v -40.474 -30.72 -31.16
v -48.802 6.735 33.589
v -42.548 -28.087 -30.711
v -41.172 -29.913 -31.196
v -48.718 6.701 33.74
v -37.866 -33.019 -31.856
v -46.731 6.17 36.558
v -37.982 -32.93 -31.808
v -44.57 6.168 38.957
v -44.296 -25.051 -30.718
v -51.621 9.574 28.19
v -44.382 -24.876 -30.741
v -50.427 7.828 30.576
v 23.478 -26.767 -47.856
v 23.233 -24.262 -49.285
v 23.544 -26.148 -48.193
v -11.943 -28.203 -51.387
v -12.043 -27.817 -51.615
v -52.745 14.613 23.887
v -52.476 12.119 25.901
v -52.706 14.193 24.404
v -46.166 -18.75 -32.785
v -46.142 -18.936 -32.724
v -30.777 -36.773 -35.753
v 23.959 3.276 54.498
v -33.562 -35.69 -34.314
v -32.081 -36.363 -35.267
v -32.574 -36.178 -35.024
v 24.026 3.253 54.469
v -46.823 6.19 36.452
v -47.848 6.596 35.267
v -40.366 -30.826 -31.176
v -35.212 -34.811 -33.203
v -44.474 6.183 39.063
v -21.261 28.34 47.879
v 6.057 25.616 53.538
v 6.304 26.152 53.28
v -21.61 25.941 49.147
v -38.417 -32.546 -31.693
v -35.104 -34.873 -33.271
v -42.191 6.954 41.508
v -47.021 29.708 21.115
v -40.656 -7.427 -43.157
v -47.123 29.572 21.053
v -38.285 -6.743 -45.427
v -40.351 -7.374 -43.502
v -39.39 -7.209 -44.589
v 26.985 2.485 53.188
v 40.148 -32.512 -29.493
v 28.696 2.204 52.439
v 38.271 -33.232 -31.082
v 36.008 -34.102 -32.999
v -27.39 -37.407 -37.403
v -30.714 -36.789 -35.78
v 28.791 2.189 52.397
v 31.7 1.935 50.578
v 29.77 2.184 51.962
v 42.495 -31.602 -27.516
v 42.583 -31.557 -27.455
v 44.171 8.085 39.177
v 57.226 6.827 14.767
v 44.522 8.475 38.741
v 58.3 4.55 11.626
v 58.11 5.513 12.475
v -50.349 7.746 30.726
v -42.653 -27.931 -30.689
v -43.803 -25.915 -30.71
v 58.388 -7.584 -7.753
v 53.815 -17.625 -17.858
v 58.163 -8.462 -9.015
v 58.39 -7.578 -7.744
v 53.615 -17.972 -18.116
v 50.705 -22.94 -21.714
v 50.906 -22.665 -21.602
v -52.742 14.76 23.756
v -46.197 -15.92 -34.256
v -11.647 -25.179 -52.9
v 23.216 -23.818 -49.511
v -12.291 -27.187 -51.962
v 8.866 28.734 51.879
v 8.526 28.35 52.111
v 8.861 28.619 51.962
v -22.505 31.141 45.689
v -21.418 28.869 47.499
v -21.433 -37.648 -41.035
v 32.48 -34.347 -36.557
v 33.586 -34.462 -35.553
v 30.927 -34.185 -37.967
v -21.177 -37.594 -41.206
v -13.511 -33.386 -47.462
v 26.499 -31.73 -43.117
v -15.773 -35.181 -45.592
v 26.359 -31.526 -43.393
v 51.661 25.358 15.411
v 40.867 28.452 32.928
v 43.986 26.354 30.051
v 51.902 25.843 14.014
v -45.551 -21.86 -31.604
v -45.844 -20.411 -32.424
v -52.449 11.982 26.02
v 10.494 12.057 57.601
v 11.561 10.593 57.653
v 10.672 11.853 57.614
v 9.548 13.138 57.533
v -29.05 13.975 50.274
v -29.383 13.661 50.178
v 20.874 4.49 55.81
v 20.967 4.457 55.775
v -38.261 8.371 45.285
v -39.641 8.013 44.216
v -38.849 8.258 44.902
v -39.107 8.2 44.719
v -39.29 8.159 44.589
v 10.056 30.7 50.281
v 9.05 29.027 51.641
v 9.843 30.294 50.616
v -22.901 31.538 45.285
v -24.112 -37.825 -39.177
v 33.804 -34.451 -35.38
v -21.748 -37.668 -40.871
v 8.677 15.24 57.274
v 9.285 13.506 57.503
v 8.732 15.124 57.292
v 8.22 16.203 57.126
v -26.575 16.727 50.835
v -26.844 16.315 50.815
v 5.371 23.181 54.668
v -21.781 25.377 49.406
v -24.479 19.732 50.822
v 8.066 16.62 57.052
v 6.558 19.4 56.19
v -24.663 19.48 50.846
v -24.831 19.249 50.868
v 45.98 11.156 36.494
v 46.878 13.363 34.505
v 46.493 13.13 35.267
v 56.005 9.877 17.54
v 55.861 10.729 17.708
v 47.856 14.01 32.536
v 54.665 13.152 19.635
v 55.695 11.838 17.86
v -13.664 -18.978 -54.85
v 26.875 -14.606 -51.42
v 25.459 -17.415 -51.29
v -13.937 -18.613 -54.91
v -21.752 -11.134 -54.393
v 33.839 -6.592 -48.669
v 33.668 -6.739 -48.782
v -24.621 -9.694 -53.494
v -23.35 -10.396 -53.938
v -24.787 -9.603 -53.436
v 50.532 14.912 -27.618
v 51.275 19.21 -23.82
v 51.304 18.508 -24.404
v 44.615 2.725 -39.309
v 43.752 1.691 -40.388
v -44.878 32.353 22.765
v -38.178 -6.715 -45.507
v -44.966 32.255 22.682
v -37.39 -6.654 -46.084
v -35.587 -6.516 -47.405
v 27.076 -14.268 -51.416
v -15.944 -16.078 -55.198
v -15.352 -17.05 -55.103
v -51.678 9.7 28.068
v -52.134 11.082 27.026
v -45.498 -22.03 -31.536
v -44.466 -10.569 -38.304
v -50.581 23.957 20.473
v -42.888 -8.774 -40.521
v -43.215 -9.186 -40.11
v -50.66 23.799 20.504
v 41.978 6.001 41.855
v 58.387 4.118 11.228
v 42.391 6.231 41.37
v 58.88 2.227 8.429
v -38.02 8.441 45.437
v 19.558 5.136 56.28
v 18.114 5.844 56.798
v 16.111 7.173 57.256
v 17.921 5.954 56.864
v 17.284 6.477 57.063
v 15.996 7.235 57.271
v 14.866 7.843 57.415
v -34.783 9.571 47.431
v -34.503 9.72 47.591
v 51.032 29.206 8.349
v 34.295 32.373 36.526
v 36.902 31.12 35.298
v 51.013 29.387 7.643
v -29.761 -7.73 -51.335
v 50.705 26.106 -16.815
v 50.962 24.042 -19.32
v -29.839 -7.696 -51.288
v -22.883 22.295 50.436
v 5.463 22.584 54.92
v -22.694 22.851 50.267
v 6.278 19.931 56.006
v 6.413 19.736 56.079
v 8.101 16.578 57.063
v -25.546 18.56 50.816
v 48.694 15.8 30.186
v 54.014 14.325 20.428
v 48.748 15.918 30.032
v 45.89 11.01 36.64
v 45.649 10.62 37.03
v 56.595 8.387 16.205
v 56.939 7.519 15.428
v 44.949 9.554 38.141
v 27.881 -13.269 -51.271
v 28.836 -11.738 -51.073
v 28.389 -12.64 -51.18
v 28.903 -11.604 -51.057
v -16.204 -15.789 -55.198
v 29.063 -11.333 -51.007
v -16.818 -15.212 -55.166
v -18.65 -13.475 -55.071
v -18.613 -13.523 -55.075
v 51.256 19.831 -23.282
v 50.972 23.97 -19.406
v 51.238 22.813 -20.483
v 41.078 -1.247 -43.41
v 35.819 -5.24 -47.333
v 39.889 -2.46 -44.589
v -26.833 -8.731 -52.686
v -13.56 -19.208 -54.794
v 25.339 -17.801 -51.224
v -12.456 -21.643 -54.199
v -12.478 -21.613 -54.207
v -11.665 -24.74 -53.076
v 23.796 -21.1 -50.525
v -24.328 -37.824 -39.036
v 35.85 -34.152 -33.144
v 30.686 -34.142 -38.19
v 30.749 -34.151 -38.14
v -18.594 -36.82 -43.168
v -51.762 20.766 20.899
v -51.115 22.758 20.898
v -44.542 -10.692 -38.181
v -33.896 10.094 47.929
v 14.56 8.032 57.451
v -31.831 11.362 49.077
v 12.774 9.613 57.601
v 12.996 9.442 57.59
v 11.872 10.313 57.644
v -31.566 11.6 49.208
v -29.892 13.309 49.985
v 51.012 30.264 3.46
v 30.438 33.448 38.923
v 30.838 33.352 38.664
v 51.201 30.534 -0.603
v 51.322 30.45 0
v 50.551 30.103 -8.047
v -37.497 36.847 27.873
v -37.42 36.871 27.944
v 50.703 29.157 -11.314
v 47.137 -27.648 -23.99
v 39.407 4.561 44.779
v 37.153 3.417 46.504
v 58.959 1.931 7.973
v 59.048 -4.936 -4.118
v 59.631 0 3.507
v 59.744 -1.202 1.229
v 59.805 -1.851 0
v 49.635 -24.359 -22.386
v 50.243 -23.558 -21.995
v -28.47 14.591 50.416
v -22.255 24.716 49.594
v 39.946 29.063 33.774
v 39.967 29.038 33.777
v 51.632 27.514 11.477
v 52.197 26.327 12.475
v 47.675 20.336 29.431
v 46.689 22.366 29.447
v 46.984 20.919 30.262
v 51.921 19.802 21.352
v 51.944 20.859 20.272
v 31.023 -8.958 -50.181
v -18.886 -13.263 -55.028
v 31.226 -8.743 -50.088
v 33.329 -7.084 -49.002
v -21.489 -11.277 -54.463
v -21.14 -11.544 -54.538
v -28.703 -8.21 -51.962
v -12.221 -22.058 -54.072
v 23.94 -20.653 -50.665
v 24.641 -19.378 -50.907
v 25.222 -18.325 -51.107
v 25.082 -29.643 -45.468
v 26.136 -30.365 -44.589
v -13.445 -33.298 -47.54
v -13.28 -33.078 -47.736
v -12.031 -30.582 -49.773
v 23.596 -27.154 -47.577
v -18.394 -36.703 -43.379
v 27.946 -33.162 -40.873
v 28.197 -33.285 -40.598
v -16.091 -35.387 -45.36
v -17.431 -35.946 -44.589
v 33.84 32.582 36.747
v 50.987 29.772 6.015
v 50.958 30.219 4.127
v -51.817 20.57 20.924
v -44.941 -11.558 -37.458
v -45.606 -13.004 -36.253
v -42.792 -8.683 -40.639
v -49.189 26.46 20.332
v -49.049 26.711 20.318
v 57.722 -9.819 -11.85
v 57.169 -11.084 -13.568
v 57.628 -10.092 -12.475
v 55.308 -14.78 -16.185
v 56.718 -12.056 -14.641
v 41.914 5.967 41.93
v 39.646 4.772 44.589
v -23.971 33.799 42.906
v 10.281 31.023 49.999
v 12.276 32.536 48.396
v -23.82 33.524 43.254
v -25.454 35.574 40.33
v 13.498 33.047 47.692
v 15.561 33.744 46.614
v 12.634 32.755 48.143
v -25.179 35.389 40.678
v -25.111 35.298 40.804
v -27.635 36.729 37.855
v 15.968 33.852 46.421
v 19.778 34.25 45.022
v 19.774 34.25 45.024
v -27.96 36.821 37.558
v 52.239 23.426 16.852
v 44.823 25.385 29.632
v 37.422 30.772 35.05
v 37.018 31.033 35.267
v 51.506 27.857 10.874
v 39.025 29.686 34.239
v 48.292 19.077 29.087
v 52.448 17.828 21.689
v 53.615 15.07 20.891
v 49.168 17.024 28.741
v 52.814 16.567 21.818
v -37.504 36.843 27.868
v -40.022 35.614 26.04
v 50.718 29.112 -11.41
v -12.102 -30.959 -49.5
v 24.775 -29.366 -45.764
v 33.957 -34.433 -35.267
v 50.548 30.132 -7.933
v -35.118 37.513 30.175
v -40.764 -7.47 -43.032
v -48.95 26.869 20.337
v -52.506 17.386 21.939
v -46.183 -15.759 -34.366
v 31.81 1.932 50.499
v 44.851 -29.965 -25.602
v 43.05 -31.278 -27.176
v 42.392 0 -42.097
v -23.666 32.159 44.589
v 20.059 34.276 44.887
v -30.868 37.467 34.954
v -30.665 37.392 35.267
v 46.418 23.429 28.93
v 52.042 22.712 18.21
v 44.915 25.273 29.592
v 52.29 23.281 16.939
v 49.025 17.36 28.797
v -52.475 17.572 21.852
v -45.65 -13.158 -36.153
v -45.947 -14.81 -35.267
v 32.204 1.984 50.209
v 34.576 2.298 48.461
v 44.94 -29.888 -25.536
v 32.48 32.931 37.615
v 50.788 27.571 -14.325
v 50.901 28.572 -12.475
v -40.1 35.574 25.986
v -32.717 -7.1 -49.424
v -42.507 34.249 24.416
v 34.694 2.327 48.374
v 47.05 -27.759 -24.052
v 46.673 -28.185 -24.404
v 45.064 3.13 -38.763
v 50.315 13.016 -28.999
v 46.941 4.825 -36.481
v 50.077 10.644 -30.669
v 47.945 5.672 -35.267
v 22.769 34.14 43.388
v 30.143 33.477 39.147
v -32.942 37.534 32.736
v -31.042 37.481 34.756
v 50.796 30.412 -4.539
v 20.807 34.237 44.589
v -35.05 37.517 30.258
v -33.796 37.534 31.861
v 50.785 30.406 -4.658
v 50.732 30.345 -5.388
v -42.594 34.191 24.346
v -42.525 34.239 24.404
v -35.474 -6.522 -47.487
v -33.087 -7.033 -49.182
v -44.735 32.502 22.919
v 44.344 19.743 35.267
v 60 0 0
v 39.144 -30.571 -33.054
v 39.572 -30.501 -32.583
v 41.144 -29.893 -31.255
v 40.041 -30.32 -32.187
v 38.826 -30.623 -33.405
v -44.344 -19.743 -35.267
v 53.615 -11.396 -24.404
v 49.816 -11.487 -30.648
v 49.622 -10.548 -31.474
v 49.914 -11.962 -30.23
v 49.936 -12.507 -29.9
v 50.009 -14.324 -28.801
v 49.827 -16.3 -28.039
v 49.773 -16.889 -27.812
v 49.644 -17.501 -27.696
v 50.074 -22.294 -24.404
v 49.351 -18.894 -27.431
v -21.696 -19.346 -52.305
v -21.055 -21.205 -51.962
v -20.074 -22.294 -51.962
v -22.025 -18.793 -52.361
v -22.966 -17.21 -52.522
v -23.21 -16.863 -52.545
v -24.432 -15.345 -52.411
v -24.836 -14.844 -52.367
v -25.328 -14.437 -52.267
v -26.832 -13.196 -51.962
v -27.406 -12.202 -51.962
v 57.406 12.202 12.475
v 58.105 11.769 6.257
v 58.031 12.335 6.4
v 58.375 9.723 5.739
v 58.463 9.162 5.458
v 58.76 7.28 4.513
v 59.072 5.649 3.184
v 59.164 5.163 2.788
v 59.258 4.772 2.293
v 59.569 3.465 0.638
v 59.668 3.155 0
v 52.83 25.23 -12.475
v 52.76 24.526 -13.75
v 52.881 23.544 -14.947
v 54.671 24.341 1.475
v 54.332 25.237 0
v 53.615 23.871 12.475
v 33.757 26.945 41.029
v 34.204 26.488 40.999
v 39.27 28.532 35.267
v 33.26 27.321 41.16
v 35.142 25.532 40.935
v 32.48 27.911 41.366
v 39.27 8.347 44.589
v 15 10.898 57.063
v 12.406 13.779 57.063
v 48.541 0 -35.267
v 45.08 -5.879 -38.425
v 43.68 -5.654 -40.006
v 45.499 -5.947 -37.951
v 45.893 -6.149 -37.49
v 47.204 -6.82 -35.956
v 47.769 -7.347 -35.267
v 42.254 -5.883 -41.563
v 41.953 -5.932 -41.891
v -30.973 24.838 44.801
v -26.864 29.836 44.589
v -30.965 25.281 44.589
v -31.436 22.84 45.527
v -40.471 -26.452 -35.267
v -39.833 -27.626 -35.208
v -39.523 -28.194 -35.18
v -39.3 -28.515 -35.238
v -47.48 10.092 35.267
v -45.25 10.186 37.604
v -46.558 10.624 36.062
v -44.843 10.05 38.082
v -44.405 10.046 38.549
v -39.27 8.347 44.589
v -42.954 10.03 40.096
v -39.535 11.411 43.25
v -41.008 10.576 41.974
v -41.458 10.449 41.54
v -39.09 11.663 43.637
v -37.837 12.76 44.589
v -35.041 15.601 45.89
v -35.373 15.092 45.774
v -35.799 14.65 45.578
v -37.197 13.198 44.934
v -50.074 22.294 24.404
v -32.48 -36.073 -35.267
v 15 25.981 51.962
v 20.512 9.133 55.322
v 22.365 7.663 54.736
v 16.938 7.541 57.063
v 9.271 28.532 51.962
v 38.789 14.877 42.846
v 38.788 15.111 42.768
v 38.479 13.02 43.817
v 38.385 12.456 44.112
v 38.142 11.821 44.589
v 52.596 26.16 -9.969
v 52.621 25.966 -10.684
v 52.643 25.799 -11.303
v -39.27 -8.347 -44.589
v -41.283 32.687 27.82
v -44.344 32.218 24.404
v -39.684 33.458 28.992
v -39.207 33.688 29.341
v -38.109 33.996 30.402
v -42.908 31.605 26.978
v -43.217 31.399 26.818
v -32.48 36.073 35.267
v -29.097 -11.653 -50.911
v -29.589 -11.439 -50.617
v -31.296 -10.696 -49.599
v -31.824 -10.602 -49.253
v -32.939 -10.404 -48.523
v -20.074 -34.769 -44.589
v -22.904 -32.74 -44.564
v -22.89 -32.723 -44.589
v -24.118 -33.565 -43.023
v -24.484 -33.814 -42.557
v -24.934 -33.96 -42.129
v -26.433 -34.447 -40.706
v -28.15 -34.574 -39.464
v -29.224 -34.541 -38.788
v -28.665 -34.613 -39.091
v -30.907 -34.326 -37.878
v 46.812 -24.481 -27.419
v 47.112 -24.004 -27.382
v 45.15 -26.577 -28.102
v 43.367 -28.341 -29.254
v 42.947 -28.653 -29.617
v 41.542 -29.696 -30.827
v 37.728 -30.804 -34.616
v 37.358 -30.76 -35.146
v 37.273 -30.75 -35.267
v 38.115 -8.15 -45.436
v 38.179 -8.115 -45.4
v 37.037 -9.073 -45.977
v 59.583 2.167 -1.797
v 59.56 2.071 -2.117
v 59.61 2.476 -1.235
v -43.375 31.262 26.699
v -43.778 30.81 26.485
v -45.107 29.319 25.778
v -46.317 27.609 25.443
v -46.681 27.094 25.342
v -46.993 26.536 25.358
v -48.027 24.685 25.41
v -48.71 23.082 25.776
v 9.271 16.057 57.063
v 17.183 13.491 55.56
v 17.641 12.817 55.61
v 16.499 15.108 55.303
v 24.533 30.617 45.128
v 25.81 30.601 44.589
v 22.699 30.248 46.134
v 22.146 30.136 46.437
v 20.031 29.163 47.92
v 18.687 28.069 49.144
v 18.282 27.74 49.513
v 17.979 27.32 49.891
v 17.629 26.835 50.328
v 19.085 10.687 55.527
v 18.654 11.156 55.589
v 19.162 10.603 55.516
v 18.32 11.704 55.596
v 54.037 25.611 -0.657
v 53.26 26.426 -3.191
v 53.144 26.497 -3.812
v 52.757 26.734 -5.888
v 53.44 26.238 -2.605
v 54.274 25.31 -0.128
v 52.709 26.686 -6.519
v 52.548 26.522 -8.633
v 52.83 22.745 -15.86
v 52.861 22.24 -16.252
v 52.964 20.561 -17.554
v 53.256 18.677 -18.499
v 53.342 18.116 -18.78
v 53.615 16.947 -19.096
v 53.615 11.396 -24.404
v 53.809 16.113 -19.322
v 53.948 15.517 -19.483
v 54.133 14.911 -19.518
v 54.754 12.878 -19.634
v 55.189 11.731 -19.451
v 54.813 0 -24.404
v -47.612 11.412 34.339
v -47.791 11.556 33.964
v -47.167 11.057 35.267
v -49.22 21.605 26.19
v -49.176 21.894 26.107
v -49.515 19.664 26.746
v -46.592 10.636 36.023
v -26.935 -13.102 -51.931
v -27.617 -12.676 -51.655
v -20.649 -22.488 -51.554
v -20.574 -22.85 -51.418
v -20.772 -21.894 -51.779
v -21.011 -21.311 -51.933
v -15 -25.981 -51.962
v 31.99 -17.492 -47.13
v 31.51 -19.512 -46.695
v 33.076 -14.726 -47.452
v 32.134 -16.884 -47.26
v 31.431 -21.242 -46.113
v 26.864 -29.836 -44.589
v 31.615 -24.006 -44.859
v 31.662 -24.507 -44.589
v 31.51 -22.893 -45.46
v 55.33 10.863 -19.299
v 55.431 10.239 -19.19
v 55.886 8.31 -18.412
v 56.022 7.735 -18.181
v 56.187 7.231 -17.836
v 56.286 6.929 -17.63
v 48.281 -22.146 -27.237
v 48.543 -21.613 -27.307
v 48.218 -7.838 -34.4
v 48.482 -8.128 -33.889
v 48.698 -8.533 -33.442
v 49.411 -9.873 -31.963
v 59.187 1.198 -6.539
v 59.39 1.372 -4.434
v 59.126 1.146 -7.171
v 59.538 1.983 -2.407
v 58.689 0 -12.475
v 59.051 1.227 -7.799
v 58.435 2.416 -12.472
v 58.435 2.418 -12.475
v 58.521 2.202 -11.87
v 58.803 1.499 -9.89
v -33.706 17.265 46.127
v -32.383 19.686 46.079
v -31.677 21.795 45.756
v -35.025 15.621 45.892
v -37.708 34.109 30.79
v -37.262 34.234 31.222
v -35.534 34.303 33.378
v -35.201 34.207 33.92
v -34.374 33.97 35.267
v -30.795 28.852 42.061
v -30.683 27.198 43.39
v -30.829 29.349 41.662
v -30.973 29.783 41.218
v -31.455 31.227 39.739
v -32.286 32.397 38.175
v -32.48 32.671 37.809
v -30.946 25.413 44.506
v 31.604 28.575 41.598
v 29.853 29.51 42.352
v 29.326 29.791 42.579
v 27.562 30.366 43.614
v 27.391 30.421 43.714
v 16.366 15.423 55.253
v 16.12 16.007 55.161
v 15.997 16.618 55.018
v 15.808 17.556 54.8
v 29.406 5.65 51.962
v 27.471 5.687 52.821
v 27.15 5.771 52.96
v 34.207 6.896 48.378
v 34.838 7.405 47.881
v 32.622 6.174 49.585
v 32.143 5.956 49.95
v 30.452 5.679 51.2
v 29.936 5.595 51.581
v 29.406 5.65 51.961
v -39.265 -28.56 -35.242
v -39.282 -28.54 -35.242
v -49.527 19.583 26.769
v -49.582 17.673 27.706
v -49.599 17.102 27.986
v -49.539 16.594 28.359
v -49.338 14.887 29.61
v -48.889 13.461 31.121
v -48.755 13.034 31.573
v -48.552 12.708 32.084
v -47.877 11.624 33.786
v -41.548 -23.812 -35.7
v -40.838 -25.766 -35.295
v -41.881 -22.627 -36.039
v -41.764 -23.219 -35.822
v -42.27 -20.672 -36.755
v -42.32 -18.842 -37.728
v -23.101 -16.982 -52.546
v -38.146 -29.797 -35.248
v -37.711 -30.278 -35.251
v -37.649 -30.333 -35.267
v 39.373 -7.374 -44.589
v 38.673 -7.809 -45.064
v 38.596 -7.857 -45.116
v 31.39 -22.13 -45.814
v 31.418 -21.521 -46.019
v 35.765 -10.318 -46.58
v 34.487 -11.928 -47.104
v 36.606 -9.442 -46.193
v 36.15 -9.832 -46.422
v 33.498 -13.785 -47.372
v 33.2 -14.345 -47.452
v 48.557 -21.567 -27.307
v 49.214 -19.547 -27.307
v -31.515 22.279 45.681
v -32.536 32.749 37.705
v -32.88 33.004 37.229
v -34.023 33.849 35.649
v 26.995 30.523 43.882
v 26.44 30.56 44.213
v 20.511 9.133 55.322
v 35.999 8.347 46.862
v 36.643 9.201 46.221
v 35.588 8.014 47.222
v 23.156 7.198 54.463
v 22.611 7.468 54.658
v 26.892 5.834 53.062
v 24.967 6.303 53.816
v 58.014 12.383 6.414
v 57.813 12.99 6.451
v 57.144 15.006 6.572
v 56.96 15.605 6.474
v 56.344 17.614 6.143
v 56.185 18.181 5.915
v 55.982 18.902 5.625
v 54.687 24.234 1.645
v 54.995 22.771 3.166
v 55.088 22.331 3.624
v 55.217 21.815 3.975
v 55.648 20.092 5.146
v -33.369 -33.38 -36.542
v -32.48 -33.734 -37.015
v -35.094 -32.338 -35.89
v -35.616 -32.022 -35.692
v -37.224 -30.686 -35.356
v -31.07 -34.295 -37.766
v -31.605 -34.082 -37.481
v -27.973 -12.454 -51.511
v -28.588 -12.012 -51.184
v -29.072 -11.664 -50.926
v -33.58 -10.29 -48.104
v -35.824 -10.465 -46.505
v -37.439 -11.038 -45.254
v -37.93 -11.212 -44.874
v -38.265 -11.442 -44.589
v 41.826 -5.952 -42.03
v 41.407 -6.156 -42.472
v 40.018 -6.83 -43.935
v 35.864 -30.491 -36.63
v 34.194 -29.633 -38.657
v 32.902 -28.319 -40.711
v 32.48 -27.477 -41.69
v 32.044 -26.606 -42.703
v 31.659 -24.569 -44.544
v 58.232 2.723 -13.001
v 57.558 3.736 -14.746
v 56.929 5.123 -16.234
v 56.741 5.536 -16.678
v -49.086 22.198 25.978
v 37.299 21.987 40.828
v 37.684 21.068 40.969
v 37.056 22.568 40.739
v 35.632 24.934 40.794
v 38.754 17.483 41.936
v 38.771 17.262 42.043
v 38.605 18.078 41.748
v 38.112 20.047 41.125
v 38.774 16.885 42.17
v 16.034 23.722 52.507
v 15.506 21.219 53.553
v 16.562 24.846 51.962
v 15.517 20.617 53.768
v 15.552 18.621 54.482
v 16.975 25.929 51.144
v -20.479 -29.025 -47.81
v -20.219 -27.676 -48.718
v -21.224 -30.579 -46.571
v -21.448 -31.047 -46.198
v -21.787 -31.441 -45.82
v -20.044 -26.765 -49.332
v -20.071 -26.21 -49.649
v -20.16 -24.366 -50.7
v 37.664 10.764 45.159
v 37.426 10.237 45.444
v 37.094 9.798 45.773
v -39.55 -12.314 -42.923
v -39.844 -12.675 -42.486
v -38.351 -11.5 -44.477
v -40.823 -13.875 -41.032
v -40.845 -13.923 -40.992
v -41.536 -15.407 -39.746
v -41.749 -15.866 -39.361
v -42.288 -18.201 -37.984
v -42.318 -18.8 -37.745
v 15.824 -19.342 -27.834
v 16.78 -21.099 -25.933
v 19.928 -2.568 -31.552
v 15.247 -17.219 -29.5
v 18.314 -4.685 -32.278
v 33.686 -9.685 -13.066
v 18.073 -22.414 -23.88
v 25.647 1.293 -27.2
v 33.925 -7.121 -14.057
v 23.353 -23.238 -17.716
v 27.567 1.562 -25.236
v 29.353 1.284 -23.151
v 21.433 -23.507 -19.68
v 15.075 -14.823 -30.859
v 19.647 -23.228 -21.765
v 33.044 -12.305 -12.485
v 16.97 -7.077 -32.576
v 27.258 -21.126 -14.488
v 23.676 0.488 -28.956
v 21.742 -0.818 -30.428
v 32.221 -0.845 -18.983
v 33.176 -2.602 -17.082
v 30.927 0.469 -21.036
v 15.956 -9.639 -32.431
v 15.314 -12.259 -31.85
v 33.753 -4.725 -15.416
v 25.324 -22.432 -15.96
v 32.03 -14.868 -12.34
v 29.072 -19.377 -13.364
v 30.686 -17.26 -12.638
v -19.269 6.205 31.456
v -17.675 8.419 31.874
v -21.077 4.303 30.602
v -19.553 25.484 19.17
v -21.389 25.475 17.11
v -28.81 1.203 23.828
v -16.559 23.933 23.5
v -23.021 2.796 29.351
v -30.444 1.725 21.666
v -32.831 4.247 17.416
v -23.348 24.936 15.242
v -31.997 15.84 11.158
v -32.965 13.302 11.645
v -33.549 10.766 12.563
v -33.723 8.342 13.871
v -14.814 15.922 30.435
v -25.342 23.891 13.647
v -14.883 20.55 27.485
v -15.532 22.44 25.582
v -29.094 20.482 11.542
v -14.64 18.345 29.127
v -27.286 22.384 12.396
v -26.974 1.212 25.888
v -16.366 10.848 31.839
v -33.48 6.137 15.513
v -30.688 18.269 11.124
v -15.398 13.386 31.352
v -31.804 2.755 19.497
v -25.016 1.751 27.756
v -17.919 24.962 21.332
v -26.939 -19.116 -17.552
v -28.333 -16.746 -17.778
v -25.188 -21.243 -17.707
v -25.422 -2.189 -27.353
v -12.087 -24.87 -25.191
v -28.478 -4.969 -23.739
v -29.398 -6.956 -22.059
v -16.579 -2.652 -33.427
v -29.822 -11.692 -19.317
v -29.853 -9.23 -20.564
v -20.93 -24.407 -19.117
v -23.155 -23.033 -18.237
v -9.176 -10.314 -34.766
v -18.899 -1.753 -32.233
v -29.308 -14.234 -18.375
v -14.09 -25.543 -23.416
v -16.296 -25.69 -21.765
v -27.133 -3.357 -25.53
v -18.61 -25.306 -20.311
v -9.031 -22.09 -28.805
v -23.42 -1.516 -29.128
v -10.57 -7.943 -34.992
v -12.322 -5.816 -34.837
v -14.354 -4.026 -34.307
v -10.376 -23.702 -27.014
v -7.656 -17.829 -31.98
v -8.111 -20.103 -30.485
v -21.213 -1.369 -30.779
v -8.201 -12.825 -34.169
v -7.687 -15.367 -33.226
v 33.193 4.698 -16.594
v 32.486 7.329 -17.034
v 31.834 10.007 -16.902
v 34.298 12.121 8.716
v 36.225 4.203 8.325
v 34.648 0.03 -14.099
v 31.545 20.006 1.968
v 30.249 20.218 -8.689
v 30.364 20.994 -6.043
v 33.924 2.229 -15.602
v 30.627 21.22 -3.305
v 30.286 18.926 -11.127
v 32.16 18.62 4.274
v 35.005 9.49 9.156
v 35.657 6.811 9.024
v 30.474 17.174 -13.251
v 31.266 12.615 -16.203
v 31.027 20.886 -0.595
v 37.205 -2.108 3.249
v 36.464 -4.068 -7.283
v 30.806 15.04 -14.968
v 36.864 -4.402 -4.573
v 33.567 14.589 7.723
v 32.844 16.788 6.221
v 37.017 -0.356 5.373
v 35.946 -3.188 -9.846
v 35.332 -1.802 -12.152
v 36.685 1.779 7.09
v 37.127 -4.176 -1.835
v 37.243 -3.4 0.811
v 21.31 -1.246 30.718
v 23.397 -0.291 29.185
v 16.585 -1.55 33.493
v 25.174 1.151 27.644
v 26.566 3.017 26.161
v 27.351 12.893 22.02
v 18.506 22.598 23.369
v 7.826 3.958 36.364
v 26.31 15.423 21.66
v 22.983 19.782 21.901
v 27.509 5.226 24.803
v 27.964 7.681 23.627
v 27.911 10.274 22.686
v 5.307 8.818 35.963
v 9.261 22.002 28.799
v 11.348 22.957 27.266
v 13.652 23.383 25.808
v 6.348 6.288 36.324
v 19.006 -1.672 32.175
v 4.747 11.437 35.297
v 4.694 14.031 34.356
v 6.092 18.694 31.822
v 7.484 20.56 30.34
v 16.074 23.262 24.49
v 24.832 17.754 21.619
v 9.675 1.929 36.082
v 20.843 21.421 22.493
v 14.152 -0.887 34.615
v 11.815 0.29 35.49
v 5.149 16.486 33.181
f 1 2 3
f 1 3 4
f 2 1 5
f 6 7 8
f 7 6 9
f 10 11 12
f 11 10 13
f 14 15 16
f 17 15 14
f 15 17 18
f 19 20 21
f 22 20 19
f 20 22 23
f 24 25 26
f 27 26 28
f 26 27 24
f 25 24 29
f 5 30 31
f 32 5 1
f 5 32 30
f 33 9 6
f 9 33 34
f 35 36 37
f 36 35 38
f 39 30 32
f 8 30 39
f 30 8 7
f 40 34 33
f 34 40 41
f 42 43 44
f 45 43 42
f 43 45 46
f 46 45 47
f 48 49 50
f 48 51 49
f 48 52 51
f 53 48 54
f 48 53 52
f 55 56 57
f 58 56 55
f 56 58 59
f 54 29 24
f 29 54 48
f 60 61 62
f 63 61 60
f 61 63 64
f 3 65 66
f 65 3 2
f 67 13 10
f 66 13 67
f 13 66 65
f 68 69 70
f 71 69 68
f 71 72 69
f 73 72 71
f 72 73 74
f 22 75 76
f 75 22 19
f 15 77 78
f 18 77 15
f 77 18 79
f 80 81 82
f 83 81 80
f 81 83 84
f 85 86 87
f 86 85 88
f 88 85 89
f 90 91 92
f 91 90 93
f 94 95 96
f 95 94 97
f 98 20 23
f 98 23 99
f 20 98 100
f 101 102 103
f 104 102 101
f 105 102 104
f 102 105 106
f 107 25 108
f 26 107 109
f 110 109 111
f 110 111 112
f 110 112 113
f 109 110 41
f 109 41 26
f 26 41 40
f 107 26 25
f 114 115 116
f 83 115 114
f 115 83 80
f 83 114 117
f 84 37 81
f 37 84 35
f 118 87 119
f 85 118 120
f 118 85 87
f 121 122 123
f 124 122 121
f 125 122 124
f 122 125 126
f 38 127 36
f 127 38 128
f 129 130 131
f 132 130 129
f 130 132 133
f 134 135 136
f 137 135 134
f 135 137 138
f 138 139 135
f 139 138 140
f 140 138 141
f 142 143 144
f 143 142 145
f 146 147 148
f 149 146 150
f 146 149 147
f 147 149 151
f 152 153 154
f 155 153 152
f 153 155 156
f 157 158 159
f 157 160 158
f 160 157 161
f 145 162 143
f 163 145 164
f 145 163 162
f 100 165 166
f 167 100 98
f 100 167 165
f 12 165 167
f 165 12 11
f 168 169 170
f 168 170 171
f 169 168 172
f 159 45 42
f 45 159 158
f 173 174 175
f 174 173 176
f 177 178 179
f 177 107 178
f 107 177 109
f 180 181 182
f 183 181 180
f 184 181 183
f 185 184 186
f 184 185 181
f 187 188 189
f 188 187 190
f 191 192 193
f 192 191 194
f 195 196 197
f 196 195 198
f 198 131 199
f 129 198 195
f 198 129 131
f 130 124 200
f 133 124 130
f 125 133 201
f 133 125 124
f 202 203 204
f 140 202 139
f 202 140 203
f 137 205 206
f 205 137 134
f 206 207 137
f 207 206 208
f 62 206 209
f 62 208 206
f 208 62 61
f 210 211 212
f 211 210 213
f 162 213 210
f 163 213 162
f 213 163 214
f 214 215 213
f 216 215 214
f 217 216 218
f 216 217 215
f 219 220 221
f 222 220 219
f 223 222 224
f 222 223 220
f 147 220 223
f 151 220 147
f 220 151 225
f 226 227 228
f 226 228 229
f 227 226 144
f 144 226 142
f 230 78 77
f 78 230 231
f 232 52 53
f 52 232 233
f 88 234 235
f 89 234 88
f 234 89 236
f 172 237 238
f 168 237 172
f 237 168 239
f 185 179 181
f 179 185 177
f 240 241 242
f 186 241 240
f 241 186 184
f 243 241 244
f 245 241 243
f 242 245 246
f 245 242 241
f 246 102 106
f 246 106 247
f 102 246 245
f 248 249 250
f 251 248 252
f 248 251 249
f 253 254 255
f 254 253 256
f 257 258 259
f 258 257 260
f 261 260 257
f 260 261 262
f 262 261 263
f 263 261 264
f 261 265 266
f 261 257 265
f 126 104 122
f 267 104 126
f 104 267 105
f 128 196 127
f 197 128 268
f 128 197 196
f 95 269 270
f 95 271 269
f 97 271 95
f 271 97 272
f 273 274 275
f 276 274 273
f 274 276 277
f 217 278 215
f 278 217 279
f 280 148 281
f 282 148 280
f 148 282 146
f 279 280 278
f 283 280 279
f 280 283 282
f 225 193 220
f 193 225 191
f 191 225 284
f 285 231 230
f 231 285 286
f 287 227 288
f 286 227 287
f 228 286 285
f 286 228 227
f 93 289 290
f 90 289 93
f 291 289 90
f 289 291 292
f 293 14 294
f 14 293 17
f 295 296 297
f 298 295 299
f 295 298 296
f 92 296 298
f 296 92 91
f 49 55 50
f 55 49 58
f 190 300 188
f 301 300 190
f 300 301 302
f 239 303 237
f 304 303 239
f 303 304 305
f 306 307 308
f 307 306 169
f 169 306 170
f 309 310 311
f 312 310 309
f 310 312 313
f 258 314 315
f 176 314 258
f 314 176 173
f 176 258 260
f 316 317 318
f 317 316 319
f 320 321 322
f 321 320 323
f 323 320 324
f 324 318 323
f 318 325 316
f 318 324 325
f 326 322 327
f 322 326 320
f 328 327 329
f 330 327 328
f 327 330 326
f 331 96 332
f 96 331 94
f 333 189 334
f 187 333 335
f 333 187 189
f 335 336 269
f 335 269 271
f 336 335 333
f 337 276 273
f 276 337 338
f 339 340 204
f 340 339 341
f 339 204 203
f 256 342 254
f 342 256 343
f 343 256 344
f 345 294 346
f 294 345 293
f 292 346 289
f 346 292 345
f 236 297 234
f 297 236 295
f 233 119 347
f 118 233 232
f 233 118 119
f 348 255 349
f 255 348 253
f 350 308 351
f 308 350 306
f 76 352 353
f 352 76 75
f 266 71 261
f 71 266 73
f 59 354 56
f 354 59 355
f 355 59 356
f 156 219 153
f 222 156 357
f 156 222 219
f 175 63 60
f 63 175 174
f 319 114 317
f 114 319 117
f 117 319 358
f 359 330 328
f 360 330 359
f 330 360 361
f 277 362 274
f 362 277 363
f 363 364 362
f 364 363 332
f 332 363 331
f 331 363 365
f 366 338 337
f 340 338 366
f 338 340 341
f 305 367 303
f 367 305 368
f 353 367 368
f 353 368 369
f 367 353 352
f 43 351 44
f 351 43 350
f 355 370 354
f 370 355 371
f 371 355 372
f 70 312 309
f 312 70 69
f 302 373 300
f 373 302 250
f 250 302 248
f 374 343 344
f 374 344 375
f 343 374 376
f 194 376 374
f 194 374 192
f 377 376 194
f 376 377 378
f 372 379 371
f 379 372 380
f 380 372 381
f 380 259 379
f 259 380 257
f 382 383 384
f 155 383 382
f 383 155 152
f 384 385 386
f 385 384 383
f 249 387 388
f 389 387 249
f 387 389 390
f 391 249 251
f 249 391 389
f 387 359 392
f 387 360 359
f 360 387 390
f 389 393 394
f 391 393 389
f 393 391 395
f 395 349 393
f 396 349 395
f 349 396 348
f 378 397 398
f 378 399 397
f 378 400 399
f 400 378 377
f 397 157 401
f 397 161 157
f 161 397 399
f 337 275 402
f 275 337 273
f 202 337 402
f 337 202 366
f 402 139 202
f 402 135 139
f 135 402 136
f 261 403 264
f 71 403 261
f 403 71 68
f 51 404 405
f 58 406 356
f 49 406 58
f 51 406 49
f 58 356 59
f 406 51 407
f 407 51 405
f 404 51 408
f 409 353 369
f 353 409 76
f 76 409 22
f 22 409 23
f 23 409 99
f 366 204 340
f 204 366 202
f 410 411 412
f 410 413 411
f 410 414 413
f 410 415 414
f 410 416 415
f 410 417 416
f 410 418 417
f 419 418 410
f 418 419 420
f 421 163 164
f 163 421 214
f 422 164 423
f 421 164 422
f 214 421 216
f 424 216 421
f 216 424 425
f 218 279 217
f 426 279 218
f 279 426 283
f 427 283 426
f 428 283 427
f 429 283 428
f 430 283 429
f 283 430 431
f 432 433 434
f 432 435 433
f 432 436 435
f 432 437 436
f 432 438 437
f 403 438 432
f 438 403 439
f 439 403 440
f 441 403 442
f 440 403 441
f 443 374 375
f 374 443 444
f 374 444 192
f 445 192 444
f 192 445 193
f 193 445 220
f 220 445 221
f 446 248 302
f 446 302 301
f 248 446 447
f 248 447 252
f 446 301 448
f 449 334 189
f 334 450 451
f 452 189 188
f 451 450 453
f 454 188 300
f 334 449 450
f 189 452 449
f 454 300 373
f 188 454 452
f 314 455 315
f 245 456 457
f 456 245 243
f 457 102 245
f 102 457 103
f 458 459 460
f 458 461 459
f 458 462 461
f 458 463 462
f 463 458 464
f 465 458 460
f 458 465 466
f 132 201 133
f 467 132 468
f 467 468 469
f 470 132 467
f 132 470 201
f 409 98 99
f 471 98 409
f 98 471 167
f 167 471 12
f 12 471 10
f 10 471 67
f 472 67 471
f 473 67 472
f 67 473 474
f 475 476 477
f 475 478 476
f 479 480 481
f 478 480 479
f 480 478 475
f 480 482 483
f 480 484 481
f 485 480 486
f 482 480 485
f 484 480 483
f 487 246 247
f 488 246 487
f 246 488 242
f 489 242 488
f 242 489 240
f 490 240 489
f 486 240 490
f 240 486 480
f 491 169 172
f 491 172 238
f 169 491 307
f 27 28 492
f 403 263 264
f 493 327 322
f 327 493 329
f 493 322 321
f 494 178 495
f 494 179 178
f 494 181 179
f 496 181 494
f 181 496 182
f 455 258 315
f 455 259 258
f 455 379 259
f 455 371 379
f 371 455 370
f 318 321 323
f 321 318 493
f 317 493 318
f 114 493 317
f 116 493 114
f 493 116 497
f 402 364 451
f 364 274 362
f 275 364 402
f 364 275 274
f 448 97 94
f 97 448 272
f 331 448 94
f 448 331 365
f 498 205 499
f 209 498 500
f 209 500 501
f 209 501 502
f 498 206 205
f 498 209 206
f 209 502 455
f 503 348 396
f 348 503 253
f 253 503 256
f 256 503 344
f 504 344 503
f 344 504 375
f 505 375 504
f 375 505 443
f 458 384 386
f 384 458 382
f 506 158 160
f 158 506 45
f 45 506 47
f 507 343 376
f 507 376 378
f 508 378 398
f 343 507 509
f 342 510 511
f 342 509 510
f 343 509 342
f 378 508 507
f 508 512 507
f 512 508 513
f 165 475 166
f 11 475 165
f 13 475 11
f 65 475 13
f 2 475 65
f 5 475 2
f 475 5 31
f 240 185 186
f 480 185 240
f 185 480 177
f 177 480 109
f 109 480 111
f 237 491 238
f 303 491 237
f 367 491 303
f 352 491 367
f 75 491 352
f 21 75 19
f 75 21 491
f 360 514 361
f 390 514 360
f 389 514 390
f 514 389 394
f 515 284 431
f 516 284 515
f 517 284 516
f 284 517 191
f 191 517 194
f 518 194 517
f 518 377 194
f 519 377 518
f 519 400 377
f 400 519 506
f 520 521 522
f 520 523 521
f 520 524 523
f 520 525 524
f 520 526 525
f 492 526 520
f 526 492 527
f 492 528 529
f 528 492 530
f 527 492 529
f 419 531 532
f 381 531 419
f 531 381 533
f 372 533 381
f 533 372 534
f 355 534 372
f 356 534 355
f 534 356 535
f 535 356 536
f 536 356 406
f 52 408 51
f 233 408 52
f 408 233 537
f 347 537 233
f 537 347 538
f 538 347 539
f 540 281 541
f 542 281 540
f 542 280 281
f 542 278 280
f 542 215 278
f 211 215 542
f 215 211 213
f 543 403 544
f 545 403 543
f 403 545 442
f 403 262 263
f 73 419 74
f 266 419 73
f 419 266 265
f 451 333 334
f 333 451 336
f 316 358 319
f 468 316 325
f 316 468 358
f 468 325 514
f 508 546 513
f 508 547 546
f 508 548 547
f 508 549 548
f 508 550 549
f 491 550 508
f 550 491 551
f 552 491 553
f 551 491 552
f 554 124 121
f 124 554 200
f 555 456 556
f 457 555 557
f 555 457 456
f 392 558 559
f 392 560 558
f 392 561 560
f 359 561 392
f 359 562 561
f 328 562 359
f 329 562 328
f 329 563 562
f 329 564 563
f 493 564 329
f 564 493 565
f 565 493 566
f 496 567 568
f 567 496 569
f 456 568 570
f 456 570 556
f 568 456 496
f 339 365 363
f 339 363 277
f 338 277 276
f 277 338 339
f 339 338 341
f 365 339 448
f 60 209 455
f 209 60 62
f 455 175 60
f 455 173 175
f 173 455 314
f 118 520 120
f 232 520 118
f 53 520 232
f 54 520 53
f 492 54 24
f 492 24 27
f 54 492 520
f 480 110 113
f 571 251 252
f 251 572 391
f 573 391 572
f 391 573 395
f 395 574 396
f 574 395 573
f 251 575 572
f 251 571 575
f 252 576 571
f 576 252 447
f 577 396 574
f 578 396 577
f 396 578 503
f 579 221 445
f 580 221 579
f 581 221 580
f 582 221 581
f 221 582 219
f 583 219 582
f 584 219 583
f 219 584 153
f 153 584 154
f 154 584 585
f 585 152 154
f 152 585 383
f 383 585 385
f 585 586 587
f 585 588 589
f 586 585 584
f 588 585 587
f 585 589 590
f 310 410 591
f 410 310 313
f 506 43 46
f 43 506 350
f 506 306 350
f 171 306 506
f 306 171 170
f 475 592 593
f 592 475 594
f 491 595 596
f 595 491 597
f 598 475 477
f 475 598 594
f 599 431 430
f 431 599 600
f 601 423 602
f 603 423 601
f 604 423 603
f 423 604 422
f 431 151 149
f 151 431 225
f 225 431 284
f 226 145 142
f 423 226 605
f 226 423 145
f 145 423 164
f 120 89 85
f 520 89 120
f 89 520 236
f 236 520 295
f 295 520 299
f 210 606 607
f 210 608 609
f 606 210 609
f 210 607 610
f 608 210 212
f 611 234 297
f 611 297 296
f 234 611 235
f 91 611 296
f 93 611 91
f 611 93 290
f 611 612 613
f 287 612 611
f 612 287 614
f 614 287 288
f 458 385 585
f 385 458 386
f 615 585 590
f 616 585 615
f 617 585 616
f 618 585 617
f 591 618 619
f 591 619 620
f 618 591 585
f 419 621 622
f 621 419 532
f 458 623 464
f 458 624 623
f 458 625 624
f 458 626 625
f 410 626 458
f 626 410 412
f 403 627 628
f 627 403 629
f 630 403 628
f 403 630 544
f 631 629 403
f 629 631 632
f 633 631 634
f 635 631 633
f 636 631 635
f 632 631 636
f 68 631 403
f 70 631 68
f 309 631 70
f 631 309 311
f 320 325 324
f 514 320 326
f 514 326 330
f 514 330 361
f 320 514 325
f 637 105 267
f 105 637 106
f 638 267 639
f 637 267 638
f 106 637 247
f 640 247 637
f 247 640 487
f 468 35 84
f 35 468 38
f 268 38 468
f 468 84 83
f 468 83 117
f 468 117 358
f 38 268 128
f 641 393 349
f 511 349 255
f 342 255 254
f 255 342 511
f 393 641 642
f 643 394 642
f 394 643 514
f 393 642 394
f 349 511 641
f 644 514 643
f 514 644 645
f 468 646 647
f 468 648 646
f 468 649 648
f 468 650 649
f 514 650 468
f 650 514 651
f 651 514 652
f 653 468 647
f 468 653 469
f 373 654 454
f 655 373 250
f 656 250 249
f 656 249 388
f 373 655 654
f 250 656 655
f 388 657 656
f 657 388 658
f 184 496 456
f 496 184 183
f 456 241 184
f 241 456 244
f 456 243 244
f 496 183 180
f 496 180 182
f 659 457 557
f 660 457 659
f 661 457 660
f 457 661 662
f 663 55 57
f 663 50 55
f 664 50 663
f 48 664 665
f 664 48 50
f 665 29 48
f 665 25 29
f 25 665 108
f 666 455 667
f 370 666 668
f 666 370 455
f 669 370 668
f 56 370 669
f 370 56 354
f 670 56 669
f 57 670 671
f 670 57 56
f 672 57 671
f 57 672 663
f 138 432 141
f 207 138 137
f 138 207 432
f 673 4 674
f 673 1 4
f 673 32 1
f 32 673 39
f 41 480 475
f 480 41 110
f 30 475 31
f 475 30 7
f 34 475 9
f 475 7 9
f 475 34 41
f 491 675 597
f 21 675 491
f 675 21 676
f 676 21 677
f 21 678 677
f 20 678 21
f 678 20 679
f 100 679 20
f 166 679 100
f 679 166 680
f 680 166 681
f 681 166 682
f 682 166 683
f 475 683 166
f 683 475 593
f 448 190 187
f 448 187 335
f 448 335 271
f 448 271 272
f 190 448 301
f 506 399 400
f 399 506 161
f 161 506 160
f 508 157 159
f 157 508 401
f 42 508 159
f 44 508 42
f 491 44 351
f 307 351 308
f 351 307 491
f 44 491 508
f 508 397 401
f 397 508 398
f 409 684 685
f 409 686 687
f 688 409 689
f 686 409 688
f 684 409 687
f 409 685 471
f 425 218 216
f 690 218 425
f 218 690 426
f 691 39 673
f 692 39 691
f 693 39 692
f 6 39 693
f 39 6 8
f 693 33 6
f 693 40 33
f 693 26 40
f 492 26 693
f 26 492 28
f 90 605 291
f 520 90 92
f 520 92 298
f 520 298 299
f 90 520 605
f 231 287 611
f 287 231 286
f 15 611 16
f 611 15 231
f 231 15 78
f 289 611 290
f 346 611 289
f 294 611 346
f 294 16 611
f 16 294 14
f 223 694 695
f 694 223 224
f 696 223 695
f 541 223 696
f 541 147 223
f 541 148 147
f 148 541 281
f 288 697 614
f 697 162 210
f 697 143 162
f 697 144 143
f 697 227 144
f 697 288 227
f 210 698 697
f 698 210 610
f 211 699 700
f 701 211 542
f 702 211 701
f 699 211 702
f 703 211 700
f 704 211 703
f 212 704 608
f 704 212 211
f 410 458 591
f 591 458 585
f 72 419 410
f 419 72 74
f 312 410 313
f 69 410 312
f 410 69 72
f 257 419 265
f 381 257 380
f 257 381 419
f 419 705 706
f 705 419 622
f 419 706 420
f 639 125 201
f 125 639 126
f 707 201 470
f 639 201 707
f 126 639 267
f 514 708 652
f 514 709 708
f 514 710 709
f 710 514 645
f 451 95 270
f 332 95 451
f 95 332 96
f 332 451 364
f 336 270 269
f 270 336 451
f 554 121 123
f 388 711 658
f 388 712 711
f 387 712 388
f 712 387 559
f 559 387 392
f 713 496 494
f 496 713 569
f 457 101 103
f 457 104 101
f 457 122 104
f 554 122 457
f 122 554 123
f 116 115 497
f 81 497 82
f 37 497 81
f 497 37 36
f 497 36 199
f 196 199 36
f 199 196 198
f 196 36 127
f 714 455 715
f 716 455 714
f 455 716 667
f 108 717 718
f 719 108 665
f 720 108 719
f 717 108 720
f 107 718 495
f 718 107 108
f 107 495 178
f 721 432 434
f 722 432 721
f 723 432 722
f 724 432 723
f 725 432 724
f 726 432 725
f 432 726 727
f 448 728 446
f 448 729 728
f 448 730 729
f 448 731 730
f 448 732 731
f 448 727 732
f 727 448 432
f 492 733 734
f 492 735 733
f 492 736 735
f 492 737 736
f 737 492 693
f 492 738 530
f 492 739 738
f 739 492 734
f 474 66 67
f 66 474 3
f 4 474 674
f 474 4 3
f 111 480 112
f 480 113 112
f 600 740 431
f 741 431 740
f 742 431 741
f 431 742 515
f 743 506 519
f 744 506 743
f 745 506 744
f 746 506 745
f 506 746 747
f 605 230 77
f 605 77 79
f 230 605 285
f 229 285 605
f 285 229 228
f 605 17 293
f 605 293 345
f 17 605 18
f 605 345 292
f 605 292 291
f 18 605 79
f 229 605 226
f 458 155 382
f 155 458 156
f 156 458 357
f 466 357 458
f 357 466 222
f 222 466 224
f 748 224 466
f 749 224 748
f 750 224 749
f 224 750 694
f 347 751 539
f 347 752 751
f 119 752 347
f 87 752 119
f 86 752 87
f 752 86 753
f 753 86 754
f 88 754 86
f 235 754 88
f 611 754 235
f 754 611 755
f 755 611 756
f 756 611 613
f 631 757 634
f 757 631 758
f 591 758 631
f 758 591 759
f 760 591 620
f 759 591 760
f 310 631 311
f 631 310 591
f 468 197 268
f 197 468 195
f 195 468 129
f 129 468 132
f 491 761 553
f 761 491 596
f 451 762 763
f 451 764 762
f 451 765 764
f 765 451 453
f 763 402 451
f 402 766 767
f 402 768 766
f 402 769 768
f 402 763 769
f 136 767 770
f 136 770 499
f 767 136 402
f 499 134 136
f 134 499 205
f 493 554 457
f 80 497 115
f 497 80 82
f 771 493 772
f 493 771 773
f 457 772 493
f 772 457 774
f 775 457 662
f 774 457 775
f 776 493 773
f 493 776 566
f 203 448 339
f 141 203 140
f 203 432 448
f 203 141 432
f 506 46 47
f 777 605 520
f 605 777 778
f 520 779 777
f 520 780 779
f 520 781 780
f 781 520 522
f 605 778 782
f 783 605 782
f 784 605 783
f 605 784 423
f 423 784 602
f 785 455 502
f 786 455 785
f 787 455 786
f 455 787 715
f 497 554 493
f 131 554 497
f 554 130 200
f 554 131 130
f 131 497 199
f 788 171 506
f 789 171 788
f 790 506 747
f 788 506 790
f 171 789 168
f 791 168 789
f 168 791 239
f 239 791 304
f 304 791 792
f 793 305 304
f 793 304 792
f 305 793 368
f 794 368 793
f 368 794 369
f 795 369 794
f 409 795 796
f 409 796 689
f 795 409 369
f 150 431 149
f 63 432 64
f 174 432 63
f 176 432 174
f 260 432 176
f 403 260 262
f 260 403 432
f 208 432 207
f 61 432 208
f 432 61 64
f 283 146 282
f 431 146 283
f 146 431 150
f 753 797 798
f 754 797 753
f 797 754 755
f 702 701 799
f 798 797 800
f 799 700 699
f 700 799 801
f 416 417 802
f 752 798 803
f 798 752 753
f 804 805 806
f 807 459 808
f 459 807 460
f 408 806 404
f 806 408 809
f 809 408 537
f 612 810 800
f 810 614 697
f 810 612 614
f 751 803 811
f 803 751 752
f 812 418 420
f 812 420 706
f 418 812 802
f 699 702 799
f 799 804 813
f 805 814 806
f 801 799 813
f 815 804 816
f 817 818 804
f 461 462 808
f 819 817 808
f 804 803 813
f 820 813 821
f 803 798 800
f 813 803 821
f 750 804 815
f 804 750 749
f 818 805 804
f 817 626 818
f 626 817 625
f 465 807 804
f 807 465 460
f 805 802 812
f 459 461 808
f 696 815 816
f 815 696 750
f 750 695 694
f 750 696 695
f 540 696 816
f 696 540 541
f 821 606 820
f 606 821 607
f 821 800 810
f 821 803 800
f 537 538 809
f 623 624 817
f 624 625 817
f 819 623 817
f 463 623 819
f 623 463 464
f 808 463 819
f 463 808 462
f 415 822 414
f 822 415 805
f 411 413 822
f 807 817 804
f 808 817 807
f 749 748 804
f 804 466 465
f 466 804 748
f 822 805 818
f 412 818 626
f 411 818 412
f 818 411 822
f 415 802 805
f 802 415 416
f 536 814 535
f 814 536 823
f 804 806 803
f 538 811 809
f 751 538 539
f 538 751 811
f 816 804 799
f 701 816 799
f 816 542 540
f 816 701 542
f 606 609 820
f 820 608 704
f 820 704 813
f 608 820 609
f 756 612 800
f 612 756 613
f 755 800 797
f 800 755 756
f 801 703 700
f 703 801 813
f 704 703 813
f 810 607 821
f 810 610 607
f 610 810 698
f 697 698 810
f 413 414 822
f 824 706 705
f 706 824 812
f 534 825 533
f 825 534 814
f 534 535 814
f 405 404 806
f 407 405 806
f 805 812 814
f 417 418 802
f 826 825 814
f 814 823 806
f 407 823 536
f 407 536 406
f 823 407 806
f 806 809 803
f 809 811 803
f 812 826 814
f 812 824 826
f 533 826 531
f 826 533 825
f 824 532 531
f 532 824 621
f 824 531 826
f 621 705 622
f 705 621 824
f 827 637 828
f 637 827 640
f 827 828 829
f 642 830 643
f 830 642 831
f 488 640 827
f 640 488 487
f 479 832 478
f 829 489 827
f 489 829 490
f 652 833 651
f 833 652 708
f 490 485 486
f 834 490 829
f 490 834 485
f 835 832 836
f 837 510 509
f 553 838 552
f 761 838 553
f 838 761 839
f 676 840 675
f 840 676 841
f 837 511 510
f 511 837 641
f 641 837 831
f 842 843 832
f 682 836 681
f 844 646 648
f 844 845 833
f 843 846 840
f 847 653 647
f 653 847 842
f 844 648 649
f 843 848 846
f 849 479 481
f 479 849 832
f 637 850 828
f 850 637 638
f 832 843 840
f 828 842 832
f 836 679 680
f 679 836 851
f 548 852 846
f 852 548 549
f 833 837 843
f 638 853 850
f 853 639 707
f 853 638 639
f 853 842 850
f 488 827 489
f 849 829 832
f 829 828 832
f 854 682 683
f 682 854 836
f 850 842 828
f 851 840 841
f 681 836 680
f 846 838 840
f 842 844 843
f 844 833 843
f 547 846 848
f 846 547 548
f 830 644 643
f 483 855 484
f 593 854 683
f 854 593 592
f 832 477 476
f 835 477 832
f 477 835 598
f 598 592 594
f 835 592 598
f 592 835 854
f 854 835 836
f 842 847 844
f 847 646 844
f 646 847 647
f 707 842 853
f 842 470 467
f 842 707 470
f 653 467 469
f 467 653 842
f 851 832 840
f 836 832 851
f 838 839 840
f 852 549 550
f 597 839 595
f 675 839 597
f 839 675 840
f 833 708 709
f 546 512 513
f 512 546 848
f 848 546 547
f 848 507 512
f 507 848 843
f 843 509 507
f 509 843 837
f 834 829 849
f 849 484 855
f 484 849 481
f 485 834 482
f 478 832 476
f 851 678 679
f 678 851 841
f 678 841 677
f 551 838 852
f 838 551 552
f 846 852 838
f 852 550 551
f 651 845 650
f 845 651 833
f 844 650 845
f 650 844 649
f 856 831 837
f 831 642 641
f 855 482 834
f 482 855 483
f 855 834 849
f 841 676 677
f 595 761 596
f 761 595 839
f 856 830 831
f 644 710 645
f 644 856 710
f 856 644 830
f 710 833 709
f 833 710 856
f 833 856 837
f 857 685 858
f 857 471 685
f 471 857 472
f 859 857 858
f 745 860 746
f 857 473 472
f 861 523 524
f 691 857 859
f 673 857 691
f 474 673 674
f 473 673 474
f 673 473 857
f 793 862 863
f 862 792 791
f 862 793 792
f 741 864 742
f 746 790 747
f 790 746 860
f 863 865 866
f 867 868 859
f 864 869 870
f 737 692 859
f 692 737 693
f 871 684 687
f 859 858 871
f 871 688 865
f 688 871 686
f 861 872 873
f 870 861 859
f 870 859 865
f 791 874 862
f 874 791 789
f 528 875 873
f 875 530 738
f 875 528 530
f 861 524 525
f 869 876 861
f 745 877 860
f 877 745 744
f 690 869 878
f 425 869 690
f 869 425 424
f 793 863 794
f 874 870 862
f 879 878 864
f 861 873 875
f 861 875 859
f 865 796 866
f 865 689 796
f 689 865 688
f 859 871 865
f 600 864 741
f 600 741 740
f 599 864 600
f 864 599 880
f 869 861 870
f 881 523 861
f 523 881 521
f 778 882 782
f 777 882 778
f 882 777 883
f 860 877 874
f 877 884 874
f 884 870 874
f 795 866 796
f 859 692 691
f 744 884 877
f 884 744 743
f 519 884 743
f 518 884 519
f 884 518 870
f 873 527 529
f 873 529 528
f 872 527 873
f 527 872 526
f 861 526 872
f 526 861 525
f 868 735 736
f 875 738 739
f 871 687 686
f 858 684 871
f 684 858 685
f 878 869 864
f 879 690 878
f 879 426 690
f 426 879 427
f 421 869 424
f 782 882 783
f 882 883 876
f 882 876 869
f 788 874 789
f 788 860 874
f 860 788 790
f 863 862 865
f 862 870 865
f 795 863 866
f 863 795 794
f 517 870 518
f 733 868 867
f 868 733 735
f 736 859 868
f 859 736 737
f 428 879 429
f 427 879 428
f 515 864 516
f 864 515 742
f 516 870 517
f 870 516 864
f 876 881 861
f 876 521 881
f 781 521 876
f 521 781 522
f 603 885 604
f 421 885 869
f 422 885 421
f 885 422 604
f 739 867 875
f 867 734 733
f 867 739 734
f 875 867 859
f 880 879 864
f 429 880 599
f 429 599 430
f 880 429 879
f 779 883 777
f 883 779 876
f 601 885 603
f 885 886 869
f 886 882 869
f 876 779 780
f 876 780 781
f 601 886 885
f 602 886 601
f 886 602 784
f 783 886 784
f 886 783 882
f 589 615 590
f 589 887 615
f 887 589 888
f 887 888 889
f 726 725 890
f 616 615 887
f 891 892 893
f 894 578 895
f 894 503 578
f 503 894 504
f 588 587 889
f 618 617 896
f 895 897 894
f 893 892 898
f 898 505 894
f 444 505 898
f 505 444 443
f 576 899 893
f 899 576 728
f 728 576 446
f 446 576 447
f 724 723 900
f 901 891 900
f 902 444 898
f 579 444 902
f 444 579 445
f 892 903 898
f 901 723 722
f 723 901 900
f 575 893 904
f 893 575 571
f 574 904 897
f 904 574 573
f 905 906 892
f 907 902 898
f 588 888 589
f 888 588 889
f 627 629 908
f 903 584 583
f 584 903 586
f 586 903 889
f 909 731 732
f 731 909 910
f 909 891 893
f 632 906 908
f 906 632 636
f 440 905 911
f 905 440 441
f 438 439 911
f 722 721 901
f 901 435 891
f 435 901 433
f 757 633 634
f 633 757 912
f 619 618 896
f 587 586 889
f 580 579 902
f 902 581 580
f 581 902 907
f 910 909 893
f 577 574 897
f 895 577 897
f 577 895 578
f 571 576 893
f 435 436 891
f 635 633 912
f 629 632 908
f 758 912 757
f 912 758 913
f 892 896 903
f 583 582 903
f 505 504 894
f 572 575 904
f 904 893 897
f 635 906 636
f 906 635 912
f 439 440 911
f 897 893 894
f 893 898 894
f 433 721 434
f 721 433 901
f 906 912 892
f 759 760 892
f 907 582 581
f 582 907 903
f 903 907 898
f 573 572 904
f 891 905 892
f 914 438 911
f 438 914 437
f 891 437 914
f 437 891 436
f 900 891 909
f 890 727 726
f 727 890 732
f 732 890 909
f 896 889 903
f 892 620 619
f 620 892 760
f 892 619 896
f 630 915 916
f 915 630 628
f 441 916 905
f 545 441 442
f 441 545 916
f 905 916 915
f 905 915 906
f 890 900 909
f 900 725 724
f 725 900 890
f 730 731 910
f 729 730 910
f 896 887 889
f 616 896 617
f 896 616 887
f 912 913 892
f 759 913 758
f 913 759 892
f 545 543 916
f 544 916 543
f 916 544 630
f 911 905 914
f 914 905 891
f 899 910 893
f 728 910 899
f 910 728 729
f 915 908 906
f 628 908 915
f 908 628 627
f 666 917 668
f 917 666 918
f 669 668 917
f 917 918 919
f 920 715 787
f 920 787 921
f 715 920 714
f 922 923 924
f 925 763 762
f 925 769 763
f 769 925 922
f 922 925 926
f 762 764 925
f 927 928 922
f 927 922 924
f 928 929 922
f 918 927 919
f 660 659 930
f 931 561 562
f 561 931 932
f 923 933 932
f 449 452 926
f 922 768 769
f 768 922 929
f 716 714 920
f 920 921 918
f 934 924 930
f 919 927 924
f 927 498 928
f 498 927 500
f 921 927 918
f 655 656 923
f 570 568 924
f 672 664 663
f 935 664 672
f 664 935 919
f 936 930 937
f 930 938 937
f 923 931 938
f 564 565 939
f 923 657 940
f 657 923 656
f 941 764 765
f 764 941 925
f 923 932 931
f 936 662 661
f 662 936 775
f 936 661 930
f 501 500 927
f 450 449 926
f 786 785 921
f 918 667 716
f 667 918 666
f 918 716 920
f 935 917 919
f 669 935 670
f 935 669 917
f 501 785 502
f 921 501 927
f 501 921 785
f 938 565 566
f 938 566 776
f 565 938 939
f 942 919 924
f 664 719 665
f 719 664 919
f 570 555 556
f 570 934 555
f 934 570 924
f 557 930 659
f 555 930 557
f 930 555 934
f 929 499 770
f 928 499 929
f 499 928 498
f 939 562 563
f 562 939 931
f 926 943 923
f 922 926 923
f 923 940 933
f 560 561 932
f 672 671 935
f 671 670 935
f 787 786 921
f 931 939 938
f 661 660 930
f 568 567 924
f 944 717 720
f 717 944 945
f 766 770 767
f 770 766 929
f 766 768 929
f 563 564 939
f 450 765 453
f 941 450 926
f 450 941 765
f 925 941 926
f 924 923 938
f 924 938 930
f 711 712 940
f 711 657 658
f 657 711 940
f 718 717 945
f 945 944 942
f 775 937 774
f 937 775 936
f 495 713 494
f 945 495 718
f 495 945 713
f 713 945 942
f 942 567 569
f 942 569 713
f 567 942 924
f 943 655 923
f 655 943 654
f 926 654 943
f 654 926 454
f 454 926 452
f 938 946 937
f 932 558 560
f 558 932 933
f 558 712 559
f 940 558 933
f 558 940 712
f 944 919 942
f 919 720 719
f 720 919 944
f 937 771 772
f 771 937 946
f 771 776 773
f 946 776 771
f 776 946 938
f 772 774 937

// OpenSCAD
difference() {
	intersection() {
		hull() {
			rotate(a = -133.0920607597, v = [-0.1812603911, 0.7074036194, 0.0000000000]) {
				rotate(a = -90.0000000000, v = [-0.6805863909, 0.7326678405, 0.0000000000]) {
					cylinder(h = 60, r = 16.2000000000);
				}
			}
			rotate(a = -133.0920607597, v = [-0.1812603911, 0.7074036194, 0.0000000000]) {
				rotate(a = -90.0000000000, v = [0.7326678405, -0.6805863909, 0.0000000000]) {
					cylinder(h = 60, r = 16.2000000000);
				}
			}
			rotate(a = -133.0920607597, v = [-0.1812603911, 0.7074036194, 0.0000000000]) {
				rotate(a = -15.8593487094, v = [-0.2656661749, 0.0640444410, 0.0000000000]) {
					cylinder(h = 60, r = 16.2000000000);
				}
			}
			rotate(a = -133.0920607597, v = [-0.1812603911, 0.7074036194, 0.0000000000]) {
				rotate(a = -130.4448145546, v = [-0.1952641757, 0.7355544154, 0.0000000000]) {
					cylinder(h = 60, r = 16.2000000000);
				}
			}
			rotate(a = -133.0920607597, v = [-0.1812603911, 0.7074036194, 0.0000000000]) {
				rotate(a = -162.2037640762, v = [0.2393271858, -0.1900891324, 0.0000000000]) {
					cylinder(h = 60, r = 16.2000000000);
				}
			}
		}
		sphere(r = 60);
	}
	union() {
		rotate(a = -133.0920607597, v = [-0.1812603911, 0.7074036194, 0.0000000000]) {
			rotate(a = -90.0000000000, v = [-0.6805863909, 0.7326678405, 0.0000000000]) {
				translate(v = [0, 0, 35]) {
					cylinder(h = 100, r = 13.2000000000);
				}
			}
		}
		rotate(a = -133.0920607597, v = [-0.1812603911, 0.7074036194, 0.0000000000]) {
			rotate(a = -90.0000000000, v = [0.7326678405, -0.6805863909, 0.0000000000]) {
				translate(v = [0, 0, 35]) {
					cylinder(h = 100, r = 13.2000000000);
				}
			}
		}
		rotate(a = -133.0920607597, v = [-0.1812603911, 0.7074036194, 0.0000000000]) {
			rotate(a = -15.8593487094, v = [-0.2656661749, 0.0640444410, 0.0000000000]) {
				translate(v = [0, 0, 35]) {
					cylinder(h = 100, r = 13.2000000000);
				}
			}
		}
		rotate(a = -133.0920607597, v = [-0.1812603911, 0.7074036194, 0.0000000000]) {
			rotate(a = -130.4448145546, v = [-0.1952641757, 0.7355544154, 0.0000000000]) {
				translate(v = [0, 0, 35]) {
					cylinder(h = 100, r = 13.2000000000);
				}
			}
		}
		rotate(a = -133.0920607597, v = [-0.1812603911, 0.7074036194, 0.0000000000]) {
			rotate(a = -162.2037640762, v = [0.2393271858, -0.1900891324, 0.0000000000]) {
				translate(v = [0, 0, 35]) {
					cylinder(h = 100, r = 13.2000000000);
				}
			}
		}
	}
}
